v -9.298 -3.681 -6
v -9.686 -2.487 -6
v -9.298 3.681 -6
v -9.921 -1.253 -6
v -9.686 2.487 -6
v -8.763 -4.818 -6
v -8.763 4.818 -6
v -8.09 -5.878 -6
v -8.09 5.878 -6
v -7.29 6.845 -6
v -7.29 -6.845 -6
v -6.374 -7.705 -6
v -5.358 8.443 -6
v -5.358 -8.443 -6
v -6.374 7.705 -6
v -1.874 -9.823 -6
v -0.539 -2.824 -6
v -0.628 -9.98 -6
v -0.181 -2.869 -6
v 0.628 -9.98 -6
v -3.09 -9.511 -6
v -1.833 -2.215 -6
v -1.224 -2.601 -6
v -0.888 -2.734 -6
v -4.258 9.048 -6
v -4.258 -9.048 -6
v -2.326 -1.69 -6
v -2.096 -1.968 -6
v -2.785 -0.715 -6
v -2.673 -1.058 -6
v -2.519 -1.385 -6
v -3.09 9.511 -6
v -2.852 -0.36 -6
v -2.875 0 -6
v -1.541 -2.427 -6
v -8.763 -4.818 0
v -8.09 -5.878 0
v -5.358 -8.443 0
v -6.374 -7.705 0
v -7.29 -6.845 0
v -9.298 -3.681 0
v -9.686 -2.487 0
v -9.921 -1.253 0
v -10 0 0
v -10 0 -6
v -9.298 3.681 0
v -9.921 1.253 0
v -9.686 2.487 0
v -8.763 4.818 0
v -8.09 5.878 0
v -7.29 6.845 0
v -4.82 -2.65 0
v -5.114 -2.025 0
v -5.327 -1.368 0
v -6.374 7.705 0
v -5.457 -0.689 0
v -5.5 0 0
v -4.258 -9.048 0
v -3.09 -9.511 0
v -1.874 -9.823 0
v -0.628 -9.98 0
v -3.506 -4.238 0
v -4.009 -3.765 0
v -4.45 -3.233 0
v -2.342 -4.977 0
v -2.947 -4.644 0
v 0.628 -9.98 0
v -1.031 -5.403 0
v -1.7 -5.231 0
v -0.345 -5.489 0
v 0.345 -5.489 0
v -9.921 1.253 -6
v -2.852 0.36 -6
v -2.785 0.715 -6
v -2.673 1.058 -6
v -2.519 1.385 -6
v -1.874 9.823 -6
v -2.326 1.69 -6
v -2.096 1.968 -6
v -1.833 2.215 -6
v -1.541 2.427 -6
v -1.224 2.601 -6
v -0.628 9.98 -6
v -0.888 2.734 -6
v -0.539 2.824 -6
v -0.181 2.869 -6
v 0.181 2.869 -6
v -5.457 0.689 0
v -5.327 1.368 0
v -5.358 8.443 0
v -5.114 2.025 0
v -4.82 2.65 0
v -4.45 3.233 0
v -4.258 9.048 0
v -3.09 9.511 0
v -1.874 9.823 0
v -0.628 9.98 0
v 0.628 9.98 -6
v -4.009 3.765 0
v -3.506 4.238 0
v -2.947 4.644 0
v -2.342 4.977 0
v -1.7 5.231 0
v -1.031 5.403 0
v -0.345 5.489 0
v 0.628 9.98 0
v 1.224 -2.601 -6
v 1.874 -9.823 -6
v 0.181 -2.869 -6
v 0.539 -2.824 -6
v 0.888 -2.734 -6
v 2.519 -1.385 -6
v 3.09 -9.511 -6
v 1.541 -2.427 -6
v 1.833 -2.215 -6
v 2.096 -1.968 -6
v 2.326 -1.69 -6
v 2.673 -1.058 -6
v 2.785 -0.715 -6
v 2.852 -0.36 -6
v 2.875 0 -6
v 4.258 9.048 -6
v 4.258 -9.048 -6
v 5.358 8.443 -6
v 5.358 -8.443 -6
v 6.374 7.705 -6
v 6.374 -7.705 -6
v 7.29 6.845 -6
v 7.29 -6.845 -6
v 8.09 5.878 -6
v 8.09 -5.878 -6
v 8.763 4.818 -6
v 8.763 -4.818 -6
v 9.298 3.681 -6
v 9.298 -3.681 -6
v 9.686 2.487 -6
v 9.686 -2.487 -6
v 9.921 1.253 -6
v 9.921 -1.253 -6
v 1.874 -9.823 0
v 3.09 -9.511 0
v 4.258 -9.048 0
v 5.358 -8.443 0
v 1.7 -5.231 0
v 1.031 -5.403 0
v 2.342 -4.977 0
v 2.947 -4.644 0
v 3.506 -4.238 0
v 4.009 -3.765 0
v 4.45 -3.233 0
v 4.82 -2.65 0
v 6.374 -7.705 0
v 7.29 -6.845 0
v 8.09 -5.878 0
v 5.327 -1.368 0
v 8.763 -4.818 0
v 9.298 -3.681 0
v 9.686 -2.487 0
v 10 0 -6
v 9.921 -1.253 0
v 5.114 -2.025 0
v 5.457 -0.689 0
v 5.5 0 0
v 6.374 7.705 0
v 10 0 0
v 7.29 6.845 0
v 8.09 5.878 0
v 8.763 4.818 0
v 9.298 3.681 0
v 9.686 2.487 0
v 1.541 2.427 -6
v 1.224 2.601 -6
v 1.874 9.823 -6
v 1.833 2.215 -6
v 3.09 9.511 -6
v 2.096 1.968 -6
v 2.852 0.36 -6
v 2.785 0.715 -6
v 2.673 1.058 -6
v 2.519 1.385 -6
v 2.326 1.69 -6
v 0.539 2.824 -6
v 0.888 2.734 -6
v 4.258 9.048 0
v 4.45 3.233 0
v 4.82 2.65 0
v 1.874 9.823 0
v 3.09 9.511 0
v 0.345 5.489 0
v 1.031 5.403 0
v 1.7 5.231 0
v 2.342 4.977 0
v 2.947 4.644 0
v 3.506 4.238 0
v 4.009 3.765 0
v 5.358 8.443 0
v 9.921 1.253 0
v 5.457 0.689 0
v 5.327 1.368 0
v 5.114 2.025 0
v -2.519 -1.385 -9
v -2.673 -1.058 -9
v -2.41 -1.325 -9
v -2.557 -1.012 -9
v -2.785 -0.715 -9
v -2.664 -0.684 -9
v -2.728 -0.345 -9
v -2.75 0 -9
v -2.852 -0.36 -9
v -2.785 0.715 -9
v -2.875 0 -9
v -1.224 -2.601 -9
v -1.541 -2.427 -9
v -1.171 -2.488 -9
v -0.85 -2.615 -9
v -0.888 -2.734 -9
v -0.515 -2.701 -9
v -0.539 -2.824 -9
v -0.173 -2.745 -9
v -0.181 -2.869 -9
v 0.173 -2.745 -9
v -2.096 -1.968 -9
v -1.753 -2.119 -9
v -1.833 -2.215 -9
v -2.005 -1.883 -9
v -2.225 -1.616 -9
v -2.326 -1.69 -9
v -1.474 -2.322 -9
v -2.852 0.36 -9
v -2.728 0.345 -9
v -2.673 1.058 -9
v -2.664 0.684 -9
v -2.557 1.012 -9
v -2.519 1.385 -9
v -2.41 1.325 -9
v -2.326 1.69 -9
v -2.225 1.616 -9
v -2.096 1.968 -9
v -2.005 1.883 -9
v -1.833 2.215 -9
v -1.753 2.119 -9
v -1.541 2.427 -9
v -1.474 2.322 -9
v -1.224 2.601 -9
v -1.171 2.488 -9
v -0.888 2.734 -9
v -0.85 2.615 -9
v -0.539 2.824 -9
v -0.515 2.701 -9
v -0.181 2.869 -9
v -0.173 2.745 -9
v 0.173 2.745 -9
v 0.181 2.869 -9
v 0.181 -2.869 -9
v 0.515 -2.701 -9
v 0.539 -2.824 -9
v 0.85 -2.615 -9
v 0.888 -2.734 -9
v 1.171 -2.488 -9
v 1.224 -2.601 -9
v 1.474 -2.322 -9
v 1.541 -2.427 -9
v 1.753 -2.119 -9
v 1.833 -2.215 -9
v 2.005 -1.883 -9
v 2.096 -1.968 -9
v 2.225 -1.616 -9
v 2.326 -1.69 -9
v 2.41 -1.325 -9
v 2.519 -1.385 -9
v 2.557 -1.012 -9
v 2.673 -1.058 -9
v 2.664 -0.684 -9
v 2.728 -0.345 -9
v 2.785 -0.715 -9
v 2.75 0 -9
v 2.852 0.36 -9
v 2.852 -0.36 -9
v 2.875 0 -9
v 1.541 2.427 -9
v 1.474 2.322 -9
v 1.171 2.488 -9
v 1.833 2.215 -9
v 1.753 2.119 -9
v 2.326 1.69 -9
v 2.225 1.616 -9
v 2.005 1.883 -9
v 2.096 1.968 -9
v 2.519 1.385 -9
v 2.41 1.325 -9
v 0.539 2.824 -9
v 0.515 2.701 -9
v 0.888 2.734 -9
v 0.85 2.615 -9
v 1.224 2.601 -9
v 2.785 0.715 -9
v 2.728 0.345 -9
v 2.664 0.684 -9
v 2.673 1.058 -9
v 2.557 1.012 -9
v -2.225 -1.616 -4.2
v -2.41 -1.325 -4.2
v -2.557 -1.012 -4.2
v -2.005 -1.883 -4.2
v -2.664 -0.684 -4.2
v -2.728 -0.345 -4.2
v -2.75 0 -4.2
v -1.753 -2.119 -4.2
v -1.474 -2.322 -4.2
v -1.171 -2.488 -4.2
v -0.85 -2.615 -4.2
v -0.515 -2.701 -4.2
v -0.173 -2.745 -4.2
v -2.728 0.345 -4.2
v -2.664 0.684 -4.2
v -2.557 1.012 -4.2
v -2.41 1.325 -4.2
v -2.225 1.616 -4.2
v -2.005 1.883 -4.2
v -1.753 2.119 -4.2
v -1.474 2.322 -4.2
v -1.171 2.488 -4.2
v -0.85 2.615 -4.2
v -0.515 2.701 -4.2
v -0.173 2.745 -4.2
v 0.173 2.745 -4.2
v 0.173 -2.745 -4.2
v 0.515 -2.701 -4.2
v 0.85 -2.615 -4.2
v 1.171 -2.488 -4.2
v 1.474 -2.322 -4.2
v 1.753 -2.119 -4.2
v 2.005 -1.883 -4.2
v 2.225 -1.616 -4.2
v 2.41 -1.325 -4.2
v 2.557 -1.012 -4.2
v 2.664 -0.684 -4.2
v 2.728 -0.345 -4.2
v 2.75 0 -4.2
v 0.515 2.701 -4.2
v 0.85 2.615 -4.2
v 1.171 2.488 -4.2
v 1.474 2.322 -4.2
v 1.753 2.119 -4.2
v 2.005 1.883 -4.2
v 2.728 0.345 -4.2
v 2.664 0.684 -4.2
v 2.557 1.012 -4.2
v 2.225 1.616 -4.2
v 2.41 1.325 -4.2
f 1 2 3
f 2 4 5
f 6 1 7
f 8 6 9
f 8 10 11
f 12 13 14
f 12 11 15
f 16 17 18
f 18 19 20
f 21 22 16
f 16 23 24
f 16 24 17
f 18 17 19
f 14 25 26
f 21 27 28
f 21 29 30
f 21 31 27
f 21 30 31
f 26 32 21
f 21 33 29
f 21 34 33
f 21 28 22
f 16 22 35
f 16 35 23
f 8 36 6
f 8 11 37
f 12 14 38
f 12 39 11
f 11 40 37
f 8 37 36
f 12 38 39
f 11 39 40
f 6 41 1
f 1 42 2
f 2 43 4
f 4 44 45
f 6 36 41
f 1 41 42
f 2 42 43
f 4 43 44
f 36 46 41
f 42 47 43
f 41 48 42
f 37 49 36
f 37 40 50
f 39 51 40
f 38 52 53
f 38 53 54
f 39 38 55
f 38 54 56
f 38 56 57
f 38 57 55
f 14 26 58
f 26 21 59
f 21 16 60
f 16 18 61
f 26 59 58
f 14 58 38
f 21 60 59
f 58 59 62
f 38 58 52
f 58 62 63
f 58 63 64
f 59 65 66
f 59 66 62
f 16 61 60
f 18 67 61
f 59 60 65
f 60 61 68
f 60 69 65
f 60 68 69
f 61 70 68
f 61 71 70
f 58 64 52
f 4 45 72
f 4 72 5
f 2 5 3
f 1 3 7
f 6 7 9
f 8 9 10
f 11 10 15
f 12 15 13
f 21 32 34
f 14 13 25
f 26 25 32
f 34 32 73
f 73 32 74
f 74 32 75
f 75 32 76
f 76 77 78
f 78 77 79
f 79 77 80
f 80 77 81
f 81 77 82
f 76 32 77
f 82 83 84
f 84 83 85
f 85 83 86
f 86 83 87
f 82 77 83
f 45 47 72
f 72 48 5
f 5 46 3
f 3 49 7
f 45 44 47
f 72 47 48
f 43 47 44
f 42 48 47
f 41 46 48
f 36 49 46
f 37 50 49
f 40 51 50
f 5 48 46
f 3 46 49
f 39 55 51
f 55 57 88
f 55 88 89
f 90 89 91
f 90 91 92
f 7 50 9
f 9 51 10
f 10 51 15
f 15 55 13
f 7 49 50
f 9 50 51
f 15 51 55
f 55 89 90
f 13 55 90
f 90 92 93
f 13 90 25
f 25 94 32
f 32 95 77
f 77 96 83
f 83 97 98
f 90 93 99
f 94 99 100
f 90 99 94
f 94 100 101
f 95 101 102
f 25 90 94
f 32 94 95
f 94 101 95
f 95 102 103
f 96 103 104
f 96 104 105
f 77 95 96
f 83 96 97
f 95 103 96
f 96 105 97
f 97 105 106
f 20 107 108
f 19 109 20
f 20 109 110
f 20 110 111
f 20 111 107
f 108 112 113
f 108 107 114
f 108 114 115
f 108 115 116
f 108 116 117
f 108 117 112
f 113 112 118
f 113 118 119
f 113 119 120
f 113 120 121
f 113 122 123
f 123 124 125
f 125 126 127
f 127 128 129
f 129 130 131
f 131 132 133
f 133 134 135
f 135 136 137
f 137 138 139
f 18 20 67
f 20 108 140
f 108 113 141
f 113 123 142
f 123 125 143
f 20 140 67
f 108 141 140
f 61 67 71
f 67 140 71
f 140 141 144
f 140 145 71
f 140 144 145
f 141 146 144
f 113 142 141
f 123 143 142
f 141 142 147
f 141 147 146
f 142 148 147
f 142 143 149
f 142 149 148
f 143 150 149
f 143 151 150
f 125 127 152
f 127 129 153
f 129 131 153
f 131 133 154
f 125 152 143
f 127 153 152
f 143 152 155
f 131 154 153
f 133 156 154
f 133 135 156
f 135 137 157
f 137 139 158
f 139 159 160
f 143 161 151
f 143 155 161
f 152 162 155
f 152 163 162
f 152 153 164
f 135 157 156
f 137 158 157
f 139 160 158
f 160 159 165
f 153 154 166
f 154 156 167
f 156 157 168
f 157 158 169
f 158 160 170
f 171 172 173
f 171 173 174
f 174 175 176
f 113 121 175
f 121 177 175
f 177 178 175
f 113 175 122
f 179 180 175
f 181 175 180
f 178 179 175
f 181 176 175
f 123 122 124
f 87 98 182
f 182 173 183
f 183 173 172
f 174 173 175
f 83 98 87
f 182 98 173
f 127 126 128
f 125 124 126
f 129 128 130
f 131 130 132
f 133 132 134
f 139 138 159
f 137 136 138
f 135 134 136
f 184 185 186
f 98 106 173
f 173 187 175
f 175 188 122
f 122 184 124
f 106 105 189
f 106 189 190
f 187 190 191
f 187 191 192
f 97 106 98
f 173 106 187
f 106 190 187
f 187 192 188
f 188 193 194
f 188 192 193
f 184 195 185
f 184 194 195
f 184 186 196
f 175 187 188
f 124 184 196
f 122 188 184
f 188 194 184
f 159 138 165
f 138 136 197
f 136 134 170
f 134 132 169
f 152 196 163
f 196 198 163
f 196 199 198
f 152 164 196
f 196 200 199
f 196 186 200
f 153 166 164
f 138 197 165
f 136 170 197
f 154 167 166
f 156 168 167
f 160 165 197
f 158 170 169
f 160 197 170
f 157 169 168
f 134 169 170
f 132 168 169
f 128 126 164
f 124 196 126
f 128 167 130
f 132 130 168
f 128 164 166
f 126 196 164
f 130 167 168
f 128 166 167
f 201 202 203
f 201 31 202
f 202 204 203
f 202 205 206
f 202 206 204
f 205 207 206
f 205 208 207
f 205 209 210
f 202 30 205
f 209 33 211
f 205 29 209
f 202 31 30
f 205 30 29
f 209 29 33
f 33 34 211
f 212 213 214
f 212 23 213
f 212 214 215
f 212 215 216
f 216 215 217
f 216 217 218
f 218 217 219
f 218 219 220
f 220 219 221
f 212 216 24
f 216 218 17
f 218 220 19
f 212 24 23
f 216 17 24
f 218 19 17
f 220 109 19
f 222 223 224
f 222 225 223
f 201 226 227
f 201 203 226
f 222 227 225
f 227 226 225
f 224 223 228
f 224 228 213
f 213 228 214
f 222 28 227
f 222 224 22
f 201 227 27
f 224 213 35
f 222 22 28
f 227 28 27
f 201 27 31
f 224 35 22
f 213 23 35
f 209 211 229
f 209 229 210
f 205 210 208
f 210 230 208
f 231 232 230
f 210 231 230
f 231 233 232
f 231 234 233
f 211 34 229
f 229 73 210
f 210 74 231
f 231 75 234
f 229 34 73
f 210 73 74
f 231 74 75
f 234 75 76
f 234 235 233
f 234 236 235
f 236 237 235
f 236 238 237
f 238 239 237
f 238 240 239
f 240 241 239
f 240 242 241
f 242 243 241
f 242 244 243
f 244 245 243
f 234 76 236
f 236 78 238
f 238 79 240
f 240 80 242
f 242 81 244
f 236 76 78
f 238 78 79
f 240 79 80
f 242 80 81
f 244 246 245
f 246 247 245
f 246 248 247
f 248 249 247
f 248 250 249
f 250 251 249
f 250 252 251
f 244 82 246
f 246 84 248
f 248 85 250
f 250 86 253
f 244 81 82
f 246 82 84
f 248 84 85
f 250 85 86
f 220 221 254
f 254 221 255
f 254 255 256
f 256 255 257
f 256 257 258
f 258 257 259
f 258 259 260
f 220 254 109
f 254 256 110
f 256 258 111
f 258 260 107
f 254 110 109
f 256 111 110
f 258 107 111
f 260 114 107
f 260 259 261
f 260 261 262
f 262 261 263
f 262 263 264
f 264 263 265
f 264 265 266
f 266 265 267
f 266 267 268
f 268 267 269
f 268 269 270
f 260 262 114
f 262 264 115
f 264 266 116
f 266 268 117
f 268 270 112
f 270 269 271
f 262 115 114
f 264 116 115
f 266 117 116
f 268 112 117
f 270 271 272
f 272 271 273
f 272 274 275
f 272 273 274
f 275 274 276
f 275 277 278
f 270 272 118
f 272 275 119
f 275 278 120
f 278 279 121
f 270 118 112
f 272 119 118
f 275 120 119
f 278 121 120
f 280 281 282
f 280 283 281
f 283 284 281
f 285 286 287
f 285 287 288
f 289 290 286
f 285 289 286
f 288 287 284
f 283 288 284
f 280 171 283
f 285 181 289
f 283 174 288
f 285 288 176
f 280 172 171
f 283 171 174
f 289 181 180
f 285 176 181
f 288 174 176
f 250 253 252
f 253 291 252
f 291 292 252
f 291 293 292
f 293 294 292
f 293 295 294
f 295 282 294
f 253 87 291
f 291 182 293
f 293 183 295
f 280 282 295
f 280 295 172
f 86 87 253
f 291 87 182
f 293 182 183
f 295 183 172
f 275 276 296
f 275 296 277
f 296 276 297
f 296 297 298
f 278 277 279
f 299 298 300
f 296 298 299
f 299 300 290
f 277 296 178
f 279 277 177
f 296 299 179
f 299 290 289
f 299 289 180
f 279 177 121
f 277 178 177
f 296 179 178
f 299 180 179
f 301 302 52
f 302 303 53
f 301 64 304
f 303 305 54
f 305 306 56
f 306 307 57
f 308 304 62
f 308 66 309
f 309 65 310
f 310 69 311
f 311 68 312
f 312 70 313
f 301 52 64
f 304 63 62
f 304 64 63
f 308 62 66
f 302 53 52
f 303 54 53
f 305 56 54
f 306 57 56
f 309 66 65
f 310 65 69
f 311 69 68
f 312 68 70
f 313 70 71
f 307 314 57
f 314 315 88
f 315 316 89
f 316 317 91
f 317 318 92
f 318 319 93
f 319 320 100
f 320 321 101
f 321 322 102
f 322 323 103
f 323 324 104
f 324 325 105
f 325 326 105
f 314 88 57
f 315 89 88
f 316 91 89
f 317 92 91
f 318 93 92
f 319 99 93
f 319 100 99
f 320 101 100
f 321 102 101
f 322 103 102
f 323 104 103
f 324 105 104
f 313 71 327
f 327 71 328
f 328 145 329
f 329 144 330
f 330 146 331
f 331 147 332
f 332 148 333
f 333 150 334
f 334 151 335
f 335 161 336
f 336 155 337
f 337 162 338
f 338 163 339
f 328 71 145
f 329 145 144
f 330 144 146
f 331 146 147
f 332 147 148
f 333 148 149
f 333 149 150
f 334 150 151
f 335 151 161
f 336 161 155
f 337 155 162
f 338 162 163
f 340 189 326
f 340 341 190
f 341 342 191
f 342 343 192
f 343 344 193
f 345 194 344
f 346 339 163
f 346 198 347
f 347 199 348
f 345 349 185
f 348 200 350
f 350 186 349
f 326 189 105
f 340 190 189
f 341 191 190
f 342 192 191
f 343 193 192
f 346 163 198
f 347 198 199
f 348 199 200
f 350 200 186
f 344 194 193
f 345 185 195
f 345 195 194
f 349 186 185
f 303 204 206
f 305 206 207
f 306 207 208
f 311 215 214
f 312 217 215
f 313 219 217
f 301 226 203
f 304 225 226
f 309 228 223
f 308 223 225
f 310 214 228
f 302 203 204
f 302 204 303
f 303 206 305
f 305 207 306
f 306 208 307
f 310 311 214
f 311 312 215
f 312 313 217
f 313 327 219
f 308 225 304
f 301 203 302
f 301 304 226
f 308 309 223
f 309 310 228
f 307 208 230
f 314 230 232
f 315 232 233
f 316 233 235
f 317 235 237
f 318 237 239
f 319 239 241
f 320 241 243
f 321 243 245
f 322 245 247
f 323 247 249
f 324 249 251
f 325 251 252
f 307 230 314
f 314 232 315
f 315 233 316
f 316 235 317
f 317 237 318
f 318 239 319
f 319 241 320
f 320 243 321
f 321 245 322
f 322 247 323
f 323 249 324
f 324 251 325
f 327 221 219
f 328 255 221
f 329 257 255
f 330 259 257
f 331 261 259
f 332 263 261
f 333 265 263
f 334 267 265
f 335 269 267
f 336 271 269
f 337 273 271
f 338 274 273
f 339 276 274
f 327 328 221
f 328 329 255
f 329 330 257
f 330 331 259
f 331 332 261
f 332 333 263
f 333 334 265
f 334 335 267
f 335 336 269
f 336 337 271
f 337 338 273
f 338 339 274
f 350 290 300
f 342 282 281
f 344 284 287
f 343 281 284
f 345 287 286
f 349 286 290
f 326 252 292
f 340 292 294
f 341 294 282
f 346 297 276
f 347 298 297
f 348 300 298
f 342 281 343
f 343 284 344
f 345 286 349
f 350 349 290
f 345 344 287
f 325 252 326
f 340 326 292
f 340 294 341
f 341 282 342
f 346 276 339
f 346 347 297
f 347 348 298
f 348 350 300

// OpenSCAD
$fn = 50;

difference() {
	union() {
		translate(v = [0, 0, -6.0]) {
			cylinder(h = 6, r = 10.0);
		}
		#translate(v = [0, 0, -9.0]) {
			cylinder(h = 9, r = 2.875);
		}
	}
	union() {
		translate(v = [0, 0, 0]) {
			rotate(a = [0, 0, 0]) {
				difference() {
					union() {
						translate(v = [0, 0, -9.0]) {
							cylinder(h = 9, r = 2.25);
						}
						translate(v = [0, 0, -4.2]) {
							cylinder(h = 4.2, r1 = 2.75, r2 = 5.5);
						}
						translate(v = [0, 0, -9.0]) {
							cylinder(h = 9, r = 2.75);
						}
						translate(v = [0, 0, -9.0]) {
							cylinder(h = 9, r = 2.25);
						}
					}
					union();
				}
			}
		}
	}
}
